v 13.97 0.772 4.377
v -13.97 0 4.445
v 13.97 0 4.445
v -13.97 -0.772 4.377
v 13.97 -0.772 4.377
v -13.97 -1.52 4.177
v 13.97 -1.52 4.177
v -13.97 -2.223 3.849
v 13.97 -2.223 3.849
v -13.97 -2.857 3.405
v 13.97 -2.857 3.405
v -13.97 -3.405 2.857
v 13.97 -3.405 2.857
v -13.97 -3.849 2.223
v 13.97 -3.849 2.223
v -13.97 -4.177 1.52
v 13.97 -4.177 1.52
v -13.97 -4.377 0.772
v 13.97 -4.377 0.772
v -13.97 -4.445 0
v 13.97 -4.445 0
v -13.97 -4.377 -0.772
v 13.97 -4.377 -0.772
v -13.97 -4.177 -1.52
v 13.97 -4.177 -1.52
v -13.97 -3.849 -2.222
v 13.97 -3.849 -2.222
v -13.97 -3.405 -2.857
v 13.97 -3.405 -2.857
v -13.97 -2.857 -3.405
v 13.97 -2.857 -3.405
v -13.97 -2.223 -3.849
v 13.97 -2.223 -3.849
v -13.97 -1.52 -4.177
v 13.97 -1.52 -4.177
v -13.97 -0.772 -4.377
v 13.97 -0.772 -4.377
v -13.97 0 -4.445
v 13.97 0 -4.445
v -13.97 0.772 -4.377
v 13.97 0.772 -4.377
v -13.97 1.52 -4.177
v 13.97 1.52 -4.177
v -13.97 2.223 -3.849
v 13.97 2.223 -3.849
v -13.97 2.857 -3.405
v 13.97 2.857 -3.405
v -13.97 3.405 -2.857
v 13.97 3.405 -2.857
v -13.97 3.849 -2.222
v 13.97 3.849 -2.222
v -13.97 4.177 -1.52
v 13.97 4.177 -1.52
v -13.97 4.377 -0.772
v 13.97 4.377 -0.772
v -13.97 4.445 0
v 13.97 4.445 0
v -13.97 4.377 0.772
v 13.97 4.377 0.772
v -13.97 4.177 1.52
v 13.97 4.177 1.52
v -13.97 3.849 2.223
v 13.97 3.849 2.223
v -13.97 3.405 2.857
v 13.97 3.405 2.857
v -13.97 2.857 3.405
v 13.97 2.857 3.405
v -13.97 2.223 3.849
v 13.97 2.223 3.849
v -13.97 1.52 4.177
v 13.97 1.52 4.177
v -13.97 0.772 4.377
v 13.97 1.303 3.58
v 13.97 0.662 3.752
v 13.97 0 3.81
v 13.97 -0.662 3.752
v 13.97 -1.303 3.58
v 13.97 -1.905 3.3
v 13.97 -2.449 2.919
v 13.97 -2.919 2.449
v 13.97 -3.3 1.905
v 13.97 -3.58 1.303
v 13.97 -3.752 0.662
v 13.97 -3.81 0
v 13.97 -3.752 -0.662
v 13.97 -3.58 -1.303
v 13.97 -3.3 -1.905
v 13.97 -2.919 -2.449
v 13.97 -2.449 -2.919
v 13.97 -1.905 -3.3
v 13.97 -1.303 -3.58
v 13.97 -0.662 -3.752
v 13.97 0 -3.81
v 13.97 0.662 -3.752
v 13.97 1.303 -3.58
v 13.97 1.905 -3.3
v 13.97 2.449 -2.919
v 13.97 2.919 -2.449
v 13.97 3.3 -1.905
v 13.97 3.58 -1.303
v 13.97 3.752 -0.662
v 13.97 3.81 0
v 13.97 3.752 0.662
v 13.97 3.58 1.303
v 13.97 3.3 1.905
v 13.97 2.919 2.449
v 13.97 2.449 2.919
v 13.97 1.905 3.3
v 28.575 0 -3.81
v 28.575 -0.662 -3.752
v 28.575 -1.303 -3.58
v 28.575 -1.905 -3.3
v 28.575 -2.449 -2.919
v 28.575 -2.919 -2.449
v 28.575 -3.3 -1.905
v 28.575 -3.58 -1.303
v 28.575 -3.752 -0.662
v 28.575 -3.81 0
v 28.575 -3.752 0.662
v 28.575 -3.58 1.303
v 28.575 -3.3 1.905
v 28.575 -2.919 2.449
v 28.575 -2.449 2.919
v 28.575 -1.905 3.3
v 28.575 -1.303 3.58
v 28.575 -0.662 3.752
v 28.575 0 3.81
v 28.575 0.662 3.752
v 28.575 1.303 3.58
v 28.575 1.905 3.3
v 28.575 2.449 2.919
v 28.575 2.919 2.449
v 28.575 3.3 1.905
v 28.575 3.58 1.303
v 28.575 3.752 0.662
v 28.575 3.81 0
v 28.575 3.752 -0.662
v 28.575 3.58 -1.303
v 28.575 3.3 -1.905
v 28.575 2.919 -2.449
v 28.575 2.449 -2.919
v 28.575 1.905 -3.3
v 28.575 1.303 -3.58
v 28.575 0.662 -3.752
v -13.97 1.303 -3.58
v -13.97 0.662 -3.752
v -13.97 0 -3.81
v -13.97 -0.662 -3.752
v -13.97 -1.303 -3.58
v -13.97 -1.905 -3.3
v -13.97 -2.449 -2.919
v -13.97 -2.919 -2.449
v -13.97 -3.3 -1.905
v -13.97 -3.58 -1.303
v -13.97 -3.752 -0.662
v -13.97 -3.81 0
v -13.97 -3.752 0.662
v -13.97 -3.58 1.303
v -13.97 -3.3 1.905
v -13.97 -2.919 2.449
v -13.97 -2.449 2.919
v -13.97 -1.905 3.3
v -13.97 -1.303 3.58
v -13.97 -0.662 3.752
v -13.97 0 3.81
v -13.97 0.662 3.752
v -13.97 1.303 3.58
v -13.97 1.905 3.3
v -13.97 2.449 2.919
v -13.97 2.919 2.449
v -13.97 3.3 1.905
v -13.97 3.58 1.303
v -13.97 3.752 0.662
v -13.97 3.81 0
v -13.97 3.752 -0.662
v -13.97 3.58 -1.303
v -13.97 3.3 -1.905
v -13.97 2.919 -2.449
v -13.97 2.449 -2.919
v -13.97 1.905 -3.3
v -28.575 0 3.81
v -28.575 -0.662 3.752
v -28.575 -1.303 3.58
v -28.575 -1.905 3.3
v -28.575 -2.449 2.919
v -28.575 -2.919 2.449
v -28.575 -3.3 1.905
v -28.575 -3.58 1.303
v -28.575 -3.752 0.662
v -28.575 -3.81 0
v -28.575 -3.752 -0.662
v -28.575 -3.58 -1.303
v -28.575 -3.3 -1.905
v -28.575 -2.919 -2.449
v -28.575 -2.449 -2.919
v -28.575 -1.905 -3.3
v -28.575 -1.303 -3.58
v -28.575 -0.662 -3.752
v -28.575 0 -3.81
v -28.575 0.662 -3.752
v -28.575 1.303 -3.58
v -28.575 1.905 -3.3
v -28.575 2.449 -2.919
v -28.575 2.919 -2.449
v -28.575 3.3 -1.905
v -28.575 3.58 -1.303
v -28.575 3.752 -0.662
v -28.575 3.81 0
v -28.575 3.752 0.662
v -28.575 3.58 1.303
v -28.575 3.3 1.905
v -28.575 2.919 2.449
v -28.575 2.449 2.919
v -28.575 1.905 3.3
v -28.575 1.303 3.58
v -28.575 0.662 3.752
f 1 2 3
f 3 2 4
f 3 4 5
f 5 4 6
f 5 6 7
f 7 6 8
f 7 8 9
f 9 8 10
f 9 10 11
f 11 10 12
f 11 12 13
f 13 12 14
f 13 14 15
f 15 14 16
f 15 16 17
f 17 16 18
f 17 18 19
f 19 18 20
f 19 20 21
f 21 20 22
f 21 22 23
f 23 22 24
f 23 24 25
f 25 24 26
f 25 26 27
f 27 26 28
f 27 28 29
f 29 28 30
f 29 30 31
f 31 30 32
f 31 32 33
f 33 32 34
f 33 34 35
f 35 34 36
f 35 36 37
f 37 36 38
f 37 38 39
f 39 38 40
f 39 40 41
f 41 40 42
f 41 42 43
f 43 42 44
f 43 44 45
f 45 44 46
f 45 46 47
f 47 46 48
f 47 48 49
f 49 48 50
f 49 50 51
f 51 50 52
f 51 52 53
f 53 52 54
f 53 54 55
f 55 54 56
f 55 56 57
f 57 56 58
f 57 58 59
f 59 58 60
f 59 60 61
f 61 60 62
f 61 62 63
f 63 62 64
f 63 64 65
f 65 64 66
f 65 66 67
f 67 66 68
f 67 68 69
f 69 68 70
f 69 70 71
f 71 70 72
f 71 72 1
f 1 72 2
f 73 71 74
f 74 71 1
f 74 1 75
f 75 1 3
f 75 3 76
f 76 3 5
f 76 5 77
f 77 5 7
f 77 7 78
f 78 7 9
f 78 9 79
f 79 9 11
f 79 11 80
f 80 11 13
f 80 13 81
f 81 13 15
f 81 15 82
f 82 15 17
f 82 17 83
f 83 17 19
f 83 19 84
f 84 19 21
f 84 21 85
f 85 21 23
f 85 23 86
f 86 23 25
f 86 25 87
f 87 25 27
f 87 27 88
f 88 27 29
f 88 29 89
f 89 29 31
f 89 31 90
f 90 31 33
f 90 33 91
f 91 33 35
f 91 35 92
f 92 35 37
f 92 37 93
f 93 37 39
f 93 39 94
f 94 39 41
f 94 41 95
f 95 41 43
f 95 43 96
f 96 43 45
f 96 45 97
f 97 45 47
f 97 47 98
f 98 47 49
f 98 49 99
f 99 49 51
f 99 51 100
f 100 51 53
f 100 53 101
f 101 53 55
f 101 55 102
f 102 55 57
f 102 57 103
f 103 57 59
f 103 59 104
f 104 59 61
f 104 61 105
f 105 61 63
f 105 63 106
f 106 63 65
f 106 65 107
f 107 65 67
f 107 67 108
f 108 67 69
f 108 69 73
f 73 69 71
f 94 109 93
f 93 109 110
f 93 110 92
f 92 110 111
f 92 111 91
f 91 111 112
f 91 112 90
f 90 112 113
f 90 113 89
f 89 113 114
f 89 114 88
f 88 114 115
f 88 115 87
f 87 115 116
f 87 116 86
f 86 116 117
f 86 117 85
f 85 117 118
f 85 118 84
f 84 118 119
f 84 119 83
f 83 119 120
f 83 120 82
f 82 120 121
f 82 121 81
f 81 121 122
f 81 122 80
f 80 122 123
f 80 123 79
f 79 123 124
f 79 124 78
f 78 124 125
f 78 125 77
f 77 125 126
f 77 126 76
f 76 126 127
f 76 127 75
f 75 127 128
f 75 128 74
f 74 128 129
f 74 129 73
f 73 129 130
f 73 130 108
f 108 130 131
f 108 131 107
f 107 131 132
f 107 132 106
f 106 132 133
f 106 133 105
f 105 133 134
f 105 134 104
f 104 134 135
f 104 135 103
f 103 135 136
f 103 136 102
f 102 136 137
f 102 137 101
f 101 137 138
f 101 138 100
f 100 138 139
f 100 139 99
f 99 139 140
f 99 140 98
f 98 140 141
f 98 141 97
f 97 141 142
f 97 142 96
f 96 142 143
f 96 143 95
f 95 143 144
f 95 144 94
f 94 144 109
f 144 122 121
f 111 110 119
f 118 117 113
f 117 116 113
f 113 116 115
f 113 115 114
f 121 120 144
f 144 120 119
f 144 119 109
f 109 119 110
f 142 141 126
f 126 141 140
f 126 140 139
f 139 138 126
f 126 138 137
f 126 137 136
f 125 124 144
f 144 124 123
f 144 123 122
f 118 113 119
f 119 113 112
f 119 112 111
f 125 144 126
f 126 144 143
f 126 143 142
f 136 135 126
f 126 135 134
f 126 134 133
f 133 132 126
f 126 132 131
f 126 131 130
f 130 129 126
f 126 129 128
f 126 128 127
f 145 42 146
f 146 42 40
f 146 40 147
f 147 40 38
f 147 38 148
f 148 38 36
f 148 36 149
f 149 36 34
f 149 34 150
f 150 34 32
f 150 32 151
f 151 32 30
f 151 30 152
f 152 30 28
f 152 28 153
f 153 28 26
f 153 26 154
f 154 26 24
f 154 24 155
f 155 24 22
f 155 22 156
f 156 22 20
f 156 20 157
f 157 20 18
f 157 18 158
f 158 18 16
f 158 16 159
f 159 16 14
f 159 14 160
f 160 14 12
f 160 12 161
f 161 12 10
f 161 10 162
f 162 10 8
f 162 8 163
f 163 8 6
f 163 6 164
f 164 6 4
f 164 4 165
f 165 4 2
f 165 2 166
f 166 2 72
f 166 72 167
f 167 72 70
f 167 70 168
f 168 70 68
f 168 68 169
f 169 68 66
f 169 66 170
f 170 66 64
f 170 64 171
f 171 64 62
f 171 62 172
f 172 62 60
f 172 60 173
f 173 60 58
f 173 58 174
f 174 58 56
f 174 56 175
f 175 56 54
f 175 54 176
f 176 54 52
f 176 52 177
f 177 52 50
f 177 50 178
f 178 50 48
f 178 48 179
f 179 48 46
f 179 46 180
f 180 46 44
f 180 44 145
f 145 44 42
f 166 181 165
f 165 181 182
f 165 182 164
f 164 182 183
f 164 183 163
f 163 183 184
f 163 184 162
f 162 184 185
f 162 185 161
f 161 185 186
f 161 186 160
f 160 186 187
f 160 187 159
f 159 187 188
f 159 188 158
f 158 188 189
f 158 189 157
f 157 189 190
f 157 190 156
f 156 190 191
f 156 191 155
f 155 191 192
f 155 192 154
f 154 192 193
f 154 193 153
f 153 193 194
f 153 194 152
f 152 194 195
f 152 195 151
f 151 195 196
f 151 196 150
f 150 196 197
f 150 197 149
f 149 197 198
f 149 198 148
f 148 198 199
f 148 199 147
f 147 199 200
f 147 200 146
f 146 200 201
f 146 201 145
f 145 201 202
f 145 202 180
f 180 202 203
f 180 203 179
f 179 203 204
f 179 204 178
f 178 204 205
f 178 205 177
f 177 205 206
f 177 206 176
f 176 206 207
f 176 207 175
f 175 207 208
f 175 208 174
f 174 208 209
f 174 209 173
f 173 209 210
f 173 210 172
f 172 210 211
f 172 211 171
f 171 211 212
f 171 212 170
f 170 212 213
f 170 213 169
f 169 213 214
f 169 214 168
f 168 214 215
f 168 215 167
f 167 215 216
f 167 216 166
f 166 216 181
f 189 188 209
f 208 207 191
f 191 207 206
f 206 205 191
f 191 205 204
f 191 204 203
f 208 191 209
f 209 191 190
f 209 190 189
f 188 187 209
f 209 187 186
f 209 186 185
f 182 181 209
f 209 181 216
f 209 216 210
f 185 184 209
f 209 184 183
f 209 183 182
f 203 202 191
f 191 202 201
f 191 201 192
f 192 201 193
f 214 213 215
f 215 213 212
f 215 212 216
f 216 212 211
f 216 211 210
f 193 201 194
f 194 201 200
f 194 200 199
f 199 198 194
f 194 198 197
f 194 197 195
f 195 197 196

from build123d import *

# Parameters (mm, degrees)
SKETCH1_R               = 4.445
BOSS_EXTRUDE1_DEPTH     = 28.575
SKETCH2_R               = 6.35
SKETCH2_R_2             = 3.81
CUT_EXTRUDE_THIN1_DEPTH = 14.605


with BuildPart() as part:
    # Sketch1 → Boss-Extrude1 (new body, symmetric)
    with BuildSketch(Plane(origin=(0, 0, 0), x_dir=(0, 0, -1), z_dir=(1, 0, 0))):
        Circle(SKETCH1_R)
    extrude(amount=BOSS_EXTRUDE1_DEPTH, both=True)

    # Sketch2 → Cut-Extrude-Thin1 (cut)
    with BuildSketch(Plane(origin=(28.575, 0, 0), x_dir=(0, 0, -1), z_dir=(1, 0, 0))):
        Circle(SKETCH2_R)
        Circle(SKETCH2_R_2, mode=Mode.SUBTRACT)
    cut_extrude_thin1 = extrude(amount=-CUT_EXTRUDE_THIN1_DEPTH, mode=Mode.SUBTRACT)

    # Mirror1: Cut-Extrude-Thin1 across plane
    add(cut_extrude_thin1.mirror(Plane(origin=(0, 0, 0), x_dir=(0, 0, 1), z_dir=(1, 0, 0))), mode=Mode.SUBTRACT)


solid = part.part
